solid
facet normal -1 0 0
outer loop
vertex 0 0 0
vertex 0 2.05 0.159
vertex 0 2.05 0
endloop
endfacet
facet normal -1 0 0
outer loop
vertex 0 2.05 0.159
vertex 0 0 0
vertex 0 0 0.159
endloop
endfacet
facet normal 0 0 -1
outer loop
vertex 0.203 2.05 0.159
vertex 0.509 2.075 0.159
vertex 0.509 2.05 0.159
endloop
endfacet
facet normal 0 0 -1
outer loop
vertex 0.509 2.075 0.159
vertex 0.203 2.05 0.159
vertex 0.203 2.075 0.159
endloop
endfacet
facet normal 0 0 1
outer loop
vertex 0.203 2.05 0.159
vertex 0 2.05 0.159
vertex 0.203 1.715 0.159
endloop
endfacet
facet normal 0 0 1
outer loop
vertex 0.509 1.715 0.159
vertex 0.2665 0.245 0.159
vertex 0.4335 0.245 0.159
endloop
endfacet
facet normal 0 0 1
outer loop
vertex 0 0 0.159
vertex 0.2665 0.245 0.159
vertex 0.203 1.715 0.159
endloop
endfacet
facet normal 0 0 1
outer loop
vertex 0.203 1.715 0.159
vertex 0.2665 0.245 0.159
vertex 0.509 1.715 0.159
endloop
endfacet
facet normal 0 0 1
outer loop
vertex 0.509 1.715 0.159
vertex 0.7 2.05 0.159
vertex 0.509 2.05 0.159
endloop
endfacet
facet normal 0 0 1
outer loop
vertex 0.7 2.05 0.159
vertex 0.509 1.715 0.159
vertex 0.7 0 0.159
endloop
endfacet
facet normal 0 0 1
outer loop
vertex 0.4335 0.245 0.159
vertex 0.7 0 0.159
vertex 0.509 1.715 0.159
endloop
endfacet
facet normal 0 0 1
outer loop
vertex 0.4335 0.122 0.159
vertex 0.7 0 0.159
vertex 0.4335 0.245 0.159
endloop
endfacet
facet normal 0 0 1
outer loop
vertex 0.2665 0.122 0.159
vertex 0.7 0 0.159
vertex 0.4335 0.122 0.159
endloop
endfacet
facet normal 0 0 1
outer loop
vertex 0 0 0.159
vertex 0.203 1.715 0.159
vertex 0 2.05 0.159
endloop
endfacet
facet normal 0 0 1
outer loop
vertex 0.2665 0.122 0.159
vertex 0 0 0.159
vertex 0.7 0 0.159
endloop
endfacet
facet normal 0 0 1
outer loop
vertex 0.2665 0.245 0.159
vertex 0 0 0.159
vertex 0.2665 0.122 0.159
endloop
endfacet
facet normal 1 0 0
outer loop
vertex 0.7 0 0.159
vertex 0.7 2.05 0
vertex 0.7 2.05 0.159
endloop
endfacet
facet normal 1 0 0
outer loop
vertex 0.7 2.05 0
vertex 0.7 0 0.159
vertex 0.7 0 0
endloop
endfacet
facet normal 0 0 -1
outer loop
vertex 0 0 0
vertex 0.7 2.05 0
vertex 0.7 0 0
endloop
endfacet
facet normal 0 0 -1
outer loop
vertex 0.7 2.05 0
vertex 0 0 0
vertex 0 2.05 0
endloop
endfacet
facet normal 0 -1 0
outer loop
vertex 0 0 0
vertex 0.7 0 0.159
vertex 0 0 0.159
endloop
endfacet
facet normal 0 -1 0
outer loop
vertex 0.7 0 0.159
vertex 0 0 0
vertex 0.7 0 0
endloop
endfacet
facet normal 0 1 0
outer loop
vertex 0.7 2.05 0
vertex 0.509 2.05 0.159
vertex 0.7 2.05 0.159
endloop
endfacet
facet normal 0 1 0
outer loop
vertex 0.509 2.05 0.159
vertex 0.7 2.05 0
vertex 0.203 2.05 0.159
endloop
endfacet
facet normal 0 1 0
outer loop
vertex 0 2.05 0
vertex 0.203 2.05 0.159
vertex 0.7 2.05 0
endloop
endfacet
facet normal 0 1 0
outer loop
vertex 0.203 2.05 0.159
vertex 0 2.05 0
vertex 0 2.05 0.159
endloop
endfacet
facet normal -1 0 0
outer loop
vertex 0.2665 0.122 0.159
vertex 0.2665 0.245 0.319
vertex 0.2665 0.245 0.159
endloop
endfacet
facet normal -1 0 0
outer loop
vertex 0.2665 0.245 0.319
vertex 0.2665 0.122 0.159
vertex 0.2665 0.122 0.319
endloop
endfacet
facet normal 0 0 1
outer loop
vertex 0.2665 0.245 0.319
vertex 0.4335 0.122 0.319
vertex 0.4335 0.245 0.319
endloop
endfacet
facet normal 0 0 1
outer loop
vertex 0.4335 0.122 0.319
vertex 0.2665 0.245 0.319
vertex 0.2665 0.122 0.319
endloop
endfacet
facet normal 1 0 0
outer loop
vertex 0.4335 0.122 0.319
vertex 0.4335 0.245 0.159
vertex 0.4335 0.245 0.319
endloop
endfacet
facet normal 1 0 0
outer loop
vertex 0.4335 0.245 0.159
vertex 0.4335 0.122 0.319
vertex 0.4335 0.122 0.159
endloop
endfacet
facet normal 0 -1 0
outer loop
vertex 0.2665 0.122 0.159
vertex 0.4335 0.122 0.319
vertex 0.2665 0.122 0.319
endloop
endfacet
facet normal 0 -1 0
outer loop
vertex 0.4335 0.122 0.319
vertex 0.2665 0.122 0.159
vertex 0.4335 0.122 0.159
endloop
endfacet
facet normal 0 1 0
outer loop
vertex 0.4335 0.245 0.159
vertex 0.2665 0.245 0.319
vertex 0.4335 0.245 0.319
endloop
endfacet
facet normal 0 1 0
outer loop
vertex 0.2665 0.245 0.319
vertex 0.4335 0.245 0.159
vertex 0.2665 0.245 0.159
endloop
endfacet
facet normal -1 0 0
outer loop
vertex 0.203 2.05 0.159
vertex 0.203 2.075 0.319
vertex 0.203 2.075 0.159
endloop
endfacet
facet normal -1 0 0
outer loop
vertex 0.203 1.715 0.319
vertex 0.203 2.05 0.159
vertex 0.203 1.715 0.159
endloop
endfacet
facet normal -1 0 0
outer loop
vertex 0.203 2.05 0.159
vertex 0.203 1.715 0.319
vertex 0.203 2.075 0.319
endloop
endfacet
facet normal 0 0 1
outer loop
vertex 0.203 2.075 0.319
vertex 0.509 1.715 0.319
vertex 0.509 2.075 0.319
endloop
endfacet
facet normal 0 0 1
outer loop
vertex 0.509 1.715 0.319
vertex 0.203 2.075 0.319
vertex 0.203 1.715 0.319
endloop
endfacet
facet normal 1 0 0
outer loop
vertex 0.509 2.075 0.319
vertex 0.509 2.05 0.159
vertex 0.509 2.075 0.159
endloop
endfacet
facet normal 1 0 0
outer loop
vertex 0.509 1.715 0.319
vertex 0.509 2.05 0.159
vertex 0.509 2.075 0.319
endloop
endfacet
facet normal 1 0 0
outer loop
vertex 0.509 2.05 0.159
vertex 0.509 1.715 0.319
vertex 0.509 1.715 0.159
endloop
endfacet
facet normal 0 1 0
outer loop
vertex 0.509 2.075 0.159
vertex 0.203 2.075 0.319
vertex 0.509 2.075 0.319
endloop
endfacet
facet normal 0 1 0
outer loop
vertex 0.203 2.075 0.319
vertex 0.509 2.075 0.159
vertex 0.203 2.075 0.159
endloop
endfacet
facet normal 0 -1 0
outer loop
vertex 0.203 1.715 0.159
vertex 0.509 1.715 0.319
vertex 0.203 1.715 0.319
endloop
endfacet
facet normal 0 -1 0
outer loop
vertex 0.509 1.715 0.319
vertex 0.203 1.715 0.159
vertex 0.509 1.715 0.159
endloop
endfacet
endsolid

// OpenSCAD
cube([0.7,2.05,0.159]);
translate([0.2665,0.122,0.159])
    cube([0.167,0.123,0.16]);
translate([0.203,1.715,0.159])
    cube([0.306,0.360,0.16]);
